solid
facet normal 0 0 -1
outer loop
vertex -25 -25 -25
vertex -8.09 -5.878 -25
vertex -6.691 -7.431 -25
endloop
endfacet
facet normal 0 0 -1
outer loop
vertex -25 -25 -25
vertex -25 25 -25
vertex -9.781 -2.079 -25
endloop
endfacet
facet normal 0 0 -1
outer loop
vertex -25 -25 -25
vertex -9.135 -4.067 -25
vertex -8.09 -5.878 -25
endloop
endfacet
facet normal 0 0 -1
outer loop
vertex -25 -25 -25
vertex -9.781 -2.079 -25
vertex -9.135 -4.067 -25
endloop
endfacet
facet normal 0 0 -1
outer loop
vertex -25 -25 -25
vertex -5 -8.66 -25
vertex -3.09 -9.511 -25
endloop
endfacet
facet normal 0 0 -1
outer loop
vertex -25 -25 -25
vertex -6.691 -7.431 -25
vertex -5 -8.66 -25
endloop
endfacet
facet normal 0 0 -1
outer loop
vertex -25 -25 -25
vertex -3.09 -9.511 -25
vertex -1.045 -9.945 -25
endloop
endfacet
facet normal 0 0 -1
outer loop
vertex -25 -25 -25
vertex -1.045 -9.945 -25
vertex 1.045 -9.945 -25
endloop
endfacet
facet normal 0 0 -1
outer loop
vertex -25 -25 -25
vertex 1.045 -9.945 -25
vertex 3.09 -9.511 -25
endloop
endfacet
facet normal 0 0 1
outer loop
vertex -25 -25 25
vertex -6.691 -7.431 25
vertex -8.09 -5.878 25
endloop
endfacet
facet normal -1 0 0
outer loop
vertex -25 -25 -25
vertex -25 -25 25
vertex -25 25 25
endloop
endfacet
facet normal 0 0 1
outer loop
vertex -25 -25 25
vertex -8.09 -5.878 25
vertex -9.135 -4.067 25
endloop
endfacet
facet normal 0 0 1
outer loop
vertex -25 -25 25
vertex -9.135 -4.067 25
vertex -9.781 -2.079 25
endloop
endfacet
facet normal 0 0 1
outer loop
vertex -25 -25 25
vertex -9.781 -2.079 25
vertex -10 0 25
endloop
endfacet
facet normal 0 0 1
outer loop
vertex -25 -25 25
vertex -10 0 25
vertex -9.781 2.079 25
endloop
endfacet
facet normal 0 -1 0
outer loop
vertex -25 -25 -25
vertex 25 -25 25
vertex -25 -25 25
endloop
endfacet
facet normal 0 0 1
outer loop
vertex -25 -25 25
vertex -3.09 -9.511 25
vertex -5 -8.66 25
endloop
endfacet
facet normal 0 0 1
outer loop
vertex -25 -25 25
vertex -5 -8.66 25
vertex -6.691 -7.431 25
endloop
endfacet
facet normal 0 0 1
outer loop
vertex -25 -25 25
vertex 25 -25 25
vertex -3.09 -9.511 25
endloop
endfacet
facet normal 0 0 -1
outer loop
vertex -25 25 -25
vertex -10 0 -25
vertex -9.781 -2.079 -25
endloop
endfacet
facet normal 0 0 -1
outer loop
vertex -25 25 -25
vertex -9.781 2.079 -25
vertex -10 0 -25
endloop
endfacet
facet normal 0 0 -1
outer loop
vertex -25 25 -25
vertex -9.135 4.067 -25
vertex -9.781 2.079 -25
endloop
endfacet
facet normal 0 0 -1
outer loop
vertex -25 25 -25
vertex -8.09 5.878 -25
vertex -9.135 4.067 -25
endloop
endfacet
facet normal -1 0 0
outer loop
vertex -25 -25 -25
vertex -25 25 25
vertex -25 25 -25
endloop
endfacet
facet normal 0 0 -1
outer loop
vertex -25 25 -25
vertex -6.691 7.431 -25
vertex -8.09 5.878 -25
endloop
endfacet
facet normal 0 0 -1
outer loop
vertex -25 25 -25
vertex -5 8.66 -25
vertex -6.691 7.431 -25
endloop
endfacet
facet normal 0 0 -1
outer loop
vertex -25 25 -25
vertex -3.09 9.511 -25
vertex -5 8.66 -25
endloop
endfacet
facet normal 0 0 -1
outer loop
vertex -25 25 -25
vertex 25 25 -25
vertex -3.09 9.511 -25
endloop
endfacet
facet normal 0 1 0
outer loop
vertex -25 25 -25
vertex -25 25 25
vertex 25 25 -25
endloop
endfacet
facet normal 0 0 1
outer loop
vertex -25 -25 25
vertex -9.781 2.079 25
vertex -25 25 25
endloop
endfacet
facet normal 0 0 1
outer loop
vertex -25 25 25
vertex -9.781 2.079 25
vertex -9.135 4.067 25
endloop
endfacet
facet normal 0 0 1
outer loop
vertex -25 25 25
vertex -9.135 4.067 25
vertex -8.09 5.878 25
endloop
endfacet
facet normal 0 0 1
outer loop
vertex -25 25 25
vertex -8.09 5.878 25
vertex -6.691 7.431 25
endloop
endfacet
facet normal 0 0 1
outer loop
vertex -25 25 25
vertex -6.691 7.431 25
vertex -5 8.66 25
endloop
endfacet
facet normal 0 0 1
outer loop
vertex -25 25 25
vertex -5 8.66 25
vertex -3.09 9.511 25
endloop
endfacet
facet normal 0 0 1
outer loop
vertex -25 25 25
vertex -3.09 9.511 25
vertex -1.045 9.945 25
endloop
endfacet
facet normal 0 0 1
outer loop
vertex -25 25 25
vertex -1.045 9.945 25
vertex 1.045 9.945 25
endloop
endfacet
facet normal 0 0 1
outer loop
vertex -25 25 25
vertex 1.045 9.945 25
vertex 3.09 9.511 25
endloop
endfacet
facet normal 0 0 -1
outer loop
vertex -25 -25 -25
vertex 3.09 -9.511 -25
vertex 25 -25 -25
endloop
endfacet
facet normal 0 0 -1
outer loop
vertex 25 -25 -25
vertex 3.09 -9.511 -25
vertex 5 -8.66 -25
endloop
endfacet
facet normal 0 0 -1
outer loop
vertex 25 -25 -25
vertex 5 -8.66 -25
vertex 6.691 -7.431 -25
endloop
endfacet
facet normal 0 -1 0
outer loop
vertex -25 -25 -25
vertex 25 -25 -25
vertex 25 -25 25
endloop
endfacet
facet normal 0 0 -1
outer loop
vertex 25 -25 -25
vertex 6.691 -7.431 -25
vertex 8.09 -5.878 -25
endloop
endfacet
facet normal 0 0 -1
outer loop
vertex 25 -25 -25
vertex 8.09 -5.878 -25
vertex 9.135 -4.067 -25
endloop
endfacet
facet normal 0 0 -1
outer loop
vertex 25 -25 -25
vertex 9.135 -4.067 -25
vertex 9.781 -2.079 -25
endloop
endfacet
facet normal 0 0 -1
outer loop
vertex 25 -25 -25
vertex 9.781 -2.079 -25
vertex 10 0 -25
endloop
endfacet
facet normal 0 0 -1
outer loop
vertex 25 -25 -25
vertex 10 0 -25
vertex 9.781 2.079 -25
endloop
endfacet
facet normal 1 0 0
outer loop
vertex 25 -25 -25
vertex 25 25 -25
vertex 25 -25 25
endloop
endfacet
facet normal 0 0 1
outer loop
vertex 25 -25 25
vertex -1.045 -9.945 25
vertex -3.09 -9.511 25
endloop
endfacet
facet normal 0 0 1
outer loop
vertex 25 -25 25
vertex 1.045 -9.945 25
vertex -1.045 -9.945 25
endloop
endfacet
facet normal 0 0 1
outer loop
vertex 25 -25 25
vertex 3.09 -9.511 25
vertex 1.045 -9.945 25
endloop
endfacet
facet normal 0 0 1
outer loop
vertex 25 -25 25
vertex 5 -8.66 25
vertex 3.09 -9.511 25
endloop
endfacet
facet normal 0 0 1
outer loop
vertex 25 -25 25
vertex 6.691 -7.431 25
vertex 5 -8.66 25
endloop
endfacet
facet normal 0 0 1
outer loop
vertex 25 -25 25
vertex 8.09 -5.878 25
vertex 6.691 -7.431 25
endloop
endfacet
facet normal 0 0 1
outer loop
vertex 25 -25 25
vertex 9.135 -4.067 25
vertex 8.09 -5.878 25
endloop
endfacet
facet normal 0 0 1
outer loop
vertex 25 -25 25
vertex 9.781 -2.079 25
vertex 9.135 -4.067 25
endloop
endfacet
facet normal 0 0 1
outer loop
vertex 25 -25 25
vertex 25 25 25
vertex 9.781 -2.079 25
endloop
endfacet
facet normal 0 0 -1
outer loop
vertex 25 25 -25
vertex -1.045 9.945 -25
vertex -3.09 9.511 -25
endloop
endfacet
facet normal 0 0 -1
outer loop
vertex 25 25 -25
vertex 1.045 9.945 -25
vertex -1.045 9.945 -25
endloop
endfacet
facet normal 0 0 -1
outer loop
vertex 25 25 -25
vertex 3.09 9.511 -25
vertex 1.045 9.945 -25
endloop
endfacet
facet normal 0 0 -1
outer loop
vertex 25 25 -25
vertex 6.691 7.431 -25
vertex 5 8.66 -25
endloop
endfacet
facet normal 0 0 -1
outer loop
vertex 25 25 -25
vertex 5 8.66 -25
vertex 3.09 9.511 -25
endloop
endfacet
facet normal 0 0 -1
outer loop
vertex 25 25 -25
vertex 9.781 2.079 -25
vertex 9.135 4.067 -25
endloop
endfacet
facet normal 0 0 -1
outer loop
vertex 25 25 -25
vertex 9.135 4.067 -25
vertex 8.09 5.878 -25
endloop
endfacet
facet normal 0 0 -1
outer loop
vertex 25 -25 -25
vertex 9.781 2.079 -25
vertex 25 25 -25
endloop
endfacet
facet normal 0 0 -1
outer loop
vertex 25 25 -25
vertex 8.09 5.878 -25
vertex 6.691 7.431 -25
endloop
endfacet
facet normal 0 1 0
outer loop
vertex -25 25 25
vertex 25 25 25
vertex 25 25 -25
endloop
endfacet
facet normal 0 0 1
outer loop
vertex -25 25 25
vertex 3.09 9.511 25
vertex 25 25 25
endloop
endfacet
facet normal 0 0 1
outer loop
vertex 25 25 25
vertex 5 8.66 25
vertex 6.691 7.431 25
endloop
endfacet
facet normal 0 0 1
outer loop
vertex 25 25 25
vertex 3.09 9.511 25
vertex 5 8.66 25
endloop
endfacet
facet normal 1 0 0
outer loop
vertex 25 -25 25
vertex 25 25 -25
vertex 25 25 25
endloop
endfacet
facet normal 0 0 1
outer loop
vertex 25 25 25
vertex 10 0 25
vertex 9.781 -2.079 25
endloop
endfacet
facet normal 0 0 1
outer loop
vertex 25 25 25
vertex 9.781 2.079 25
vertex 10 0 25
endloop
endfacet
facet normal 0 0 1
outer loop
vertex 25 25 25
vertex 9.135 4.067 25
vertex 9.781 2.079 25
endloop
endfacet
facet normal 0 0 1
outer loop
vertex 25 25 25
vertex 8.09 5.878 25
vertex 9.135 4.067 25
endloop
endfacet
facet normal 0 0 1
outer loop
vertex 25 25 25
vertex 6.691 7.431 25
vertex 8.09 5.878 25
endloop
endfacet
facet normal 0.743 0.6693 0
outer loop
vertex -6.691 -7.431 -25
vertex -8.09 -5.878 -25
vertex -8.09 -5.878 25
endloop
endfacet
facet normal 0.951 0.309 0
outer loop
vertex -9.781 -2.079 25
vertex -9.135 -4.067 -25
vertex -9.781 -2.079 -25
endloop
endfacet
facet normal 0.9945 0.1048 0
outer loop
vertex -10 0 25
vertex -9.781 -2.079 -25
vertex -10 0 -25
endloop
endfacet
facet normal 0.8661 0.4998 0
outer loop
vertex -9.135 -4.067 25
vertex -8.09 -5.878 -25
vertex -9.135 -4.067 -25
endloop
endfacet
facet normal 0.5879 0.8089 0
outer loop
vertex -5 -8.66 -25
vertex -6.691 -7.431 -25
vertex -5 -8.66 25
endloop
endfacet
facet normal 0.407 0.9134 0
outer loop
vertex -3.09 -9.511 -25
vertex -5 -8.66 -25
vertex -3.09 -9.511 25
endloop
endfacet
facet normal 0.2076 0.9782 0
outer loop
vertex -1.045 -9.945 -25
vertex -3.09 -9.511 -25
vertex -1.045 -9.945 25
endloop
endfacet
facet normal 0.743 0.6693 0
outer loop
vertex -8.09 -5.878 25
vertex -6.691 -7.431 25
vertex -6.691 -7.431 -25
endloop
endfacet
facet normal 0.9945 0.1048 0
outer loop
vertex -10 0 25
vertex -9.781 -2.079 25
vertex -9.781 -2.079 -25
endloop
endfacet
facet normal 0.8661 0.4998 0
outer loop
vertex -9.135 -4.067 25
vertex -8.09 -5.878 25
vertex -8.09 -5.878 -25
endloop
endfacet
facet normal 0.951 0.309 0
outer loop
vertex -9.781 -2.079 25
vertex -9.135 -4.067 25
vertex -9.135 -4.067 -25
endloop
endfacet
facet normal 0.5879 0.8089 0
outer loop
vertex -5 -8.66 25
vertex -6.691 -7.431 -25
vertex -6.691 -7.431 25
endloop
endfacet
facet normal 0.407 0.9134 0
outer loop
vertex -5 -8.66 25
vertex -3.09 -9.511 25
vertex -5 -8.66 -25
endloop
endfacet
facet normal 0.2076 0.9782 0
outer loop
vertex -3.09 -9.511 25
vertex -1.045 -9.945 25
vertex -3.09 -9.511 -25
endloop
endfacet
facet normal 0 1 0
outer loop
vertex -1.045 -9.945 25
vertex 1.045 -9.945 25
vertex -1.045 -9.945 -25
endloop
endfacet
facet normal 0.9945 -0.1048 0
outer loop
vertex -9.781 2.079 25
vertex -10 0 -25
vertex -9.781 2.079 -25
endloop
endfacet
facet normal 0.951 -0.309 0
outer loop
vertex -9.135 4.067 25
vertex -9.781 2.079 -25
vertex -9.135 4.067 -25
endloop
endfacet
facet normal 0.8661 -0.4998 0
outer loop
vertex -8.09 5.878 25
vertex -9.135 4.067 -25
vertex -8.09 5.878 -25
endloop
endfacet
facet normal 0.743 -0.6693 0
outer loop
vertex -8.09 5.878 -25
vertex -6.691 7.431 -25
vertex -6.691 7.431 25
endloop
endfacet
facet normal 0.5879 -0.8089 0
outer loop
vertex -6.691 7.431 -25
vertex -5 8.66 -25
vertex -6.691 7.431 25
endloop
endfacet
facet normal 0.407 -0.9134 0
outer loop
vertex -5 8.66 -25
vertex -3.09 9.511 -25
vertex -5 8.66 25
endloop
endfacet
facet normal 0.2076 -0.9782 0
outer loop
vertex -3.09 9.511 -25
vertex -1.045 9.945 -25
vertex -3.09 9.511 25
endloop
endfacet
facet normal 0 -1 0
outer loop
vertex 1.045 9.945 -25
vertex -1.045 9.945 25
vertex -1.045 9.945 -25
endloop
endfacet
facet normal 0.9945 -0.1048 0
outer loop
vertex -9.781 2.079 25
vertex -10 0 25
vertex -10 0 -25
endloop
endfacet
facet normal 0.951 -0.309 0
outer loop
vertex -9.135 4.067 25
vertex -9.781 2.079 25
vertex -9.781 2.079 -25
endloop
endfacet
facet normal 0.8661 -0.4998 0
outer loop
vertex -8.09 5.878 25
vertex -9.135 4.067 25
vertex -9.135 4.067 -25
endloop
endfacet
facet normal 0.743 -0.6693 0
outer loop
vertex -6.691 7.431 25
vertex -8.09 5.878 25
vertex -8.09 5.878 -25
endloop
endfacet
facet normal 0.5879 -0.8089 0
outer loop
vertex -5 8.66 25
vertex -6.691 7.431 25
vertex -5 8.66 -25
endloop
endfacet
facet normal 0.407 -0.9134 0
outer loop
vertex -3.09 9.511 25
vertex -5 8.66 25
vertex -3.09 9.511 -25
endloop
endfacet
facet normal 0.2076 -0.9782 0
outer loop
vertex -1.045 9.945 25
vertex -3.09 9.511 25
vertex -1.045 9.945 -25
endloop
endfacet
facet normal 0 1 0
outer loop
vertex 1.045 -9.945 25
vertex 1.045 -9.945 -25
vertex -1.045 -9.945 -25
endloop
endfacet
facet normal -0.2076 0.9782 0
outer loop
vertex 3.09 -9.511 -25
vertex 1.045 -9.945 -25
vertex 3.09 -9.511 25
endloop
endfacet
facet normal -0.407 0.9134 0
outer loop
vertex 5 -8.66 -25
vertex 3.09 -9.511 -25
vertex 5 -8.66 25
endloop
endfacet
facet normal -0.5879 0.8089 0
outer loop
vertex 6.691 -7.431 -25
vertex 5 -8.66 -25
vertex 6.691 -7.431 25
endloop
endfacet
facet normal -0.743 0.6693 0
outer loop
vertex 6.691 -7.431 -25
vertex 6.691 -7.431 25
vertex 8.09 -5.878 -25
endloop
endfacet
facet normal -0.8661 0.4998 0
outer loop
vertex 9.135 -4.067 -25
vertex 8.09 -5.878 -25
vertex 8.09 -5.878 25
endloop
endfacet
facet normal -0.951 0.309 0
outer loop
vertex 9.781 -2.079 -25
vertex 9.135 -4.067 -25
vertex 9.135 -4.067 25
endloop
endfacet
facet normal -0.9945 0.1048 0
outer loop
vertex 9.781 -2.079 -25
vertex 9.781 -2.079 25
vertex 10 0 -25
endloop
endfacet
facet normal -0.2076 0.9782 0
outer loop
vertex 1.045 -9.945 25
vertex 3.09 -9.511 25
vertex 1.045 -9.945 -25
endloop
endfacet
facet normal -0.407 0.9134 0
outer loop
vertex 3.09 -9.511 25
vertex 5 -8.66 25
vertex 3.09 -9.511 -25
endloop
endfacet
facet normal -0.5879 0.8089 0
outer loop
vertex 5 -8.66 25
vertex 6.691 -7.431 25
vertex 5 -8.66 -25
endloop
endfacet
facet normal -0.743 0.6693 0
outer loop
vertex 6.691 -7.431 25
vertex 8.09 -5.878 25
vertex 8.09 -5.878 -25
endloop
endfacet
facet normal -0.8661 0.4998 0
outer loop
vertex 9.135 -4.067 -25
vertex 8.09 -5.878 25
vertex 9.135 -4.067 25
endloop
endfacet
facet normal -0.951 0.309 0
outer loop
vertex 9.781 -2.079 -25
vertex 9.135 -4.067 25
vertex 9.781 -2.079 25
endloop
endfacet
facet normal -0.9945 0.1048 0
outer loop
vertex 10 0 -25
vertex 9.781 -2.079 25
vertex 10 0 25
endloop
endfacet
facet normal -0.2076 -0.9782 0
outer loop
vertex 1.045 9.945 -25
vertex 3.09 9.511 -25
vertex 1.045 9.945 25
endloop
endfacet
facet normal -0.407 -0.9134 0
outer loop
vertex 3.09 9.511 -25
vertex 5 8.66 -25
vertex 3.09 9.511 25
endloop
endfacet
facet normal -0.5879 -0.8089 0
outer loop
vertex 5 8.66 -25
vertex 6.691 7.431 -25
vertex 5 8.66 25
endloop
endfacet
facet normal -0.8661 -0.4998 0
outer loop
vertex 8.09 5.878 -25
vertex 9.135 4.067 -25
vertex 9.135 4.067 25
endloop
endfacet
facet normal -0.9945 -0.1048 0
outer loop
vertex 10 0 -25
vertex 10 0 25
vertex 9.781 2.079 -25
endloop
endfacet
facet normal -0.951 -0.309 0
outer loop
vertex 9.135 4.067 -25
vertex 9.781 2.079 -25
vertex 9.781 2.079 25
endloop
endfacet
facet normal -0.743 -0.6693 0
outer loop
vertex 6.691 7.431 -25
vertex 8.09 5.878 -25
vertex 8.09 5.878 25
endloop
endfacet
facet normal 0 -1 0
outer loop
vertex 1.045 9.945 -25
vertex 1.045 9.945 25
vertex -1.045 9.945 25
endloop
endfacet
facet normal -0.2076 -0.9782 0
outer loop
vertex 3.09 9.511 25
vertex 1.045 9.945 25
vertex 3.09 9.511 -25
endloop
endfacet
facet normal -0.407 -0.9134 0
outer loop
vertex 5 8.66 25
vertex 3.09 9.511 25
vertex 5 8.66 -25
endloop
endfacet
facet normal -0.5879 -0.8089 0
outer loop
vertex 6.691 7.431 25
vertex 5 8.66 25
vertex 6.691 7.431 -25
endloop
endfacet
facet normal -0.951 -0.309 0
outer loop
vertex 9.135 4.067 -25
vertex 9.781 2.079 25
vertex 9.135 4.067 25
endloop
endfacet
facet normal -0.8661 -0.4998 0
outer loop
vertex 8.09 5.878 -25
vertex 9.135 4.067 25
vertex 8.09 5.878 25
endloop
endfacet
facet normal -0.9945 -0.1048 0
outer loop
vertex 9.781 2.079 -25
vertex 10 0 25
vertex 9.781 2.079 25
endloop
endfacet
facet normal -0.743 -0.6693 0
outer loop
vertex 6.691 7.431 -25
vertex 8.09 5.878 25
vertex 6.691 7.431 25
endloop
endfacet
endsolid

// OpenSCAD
difference() {
  cube([50,50,50], center=true);
  cylinder(h=60, d=20, center=true);
}
